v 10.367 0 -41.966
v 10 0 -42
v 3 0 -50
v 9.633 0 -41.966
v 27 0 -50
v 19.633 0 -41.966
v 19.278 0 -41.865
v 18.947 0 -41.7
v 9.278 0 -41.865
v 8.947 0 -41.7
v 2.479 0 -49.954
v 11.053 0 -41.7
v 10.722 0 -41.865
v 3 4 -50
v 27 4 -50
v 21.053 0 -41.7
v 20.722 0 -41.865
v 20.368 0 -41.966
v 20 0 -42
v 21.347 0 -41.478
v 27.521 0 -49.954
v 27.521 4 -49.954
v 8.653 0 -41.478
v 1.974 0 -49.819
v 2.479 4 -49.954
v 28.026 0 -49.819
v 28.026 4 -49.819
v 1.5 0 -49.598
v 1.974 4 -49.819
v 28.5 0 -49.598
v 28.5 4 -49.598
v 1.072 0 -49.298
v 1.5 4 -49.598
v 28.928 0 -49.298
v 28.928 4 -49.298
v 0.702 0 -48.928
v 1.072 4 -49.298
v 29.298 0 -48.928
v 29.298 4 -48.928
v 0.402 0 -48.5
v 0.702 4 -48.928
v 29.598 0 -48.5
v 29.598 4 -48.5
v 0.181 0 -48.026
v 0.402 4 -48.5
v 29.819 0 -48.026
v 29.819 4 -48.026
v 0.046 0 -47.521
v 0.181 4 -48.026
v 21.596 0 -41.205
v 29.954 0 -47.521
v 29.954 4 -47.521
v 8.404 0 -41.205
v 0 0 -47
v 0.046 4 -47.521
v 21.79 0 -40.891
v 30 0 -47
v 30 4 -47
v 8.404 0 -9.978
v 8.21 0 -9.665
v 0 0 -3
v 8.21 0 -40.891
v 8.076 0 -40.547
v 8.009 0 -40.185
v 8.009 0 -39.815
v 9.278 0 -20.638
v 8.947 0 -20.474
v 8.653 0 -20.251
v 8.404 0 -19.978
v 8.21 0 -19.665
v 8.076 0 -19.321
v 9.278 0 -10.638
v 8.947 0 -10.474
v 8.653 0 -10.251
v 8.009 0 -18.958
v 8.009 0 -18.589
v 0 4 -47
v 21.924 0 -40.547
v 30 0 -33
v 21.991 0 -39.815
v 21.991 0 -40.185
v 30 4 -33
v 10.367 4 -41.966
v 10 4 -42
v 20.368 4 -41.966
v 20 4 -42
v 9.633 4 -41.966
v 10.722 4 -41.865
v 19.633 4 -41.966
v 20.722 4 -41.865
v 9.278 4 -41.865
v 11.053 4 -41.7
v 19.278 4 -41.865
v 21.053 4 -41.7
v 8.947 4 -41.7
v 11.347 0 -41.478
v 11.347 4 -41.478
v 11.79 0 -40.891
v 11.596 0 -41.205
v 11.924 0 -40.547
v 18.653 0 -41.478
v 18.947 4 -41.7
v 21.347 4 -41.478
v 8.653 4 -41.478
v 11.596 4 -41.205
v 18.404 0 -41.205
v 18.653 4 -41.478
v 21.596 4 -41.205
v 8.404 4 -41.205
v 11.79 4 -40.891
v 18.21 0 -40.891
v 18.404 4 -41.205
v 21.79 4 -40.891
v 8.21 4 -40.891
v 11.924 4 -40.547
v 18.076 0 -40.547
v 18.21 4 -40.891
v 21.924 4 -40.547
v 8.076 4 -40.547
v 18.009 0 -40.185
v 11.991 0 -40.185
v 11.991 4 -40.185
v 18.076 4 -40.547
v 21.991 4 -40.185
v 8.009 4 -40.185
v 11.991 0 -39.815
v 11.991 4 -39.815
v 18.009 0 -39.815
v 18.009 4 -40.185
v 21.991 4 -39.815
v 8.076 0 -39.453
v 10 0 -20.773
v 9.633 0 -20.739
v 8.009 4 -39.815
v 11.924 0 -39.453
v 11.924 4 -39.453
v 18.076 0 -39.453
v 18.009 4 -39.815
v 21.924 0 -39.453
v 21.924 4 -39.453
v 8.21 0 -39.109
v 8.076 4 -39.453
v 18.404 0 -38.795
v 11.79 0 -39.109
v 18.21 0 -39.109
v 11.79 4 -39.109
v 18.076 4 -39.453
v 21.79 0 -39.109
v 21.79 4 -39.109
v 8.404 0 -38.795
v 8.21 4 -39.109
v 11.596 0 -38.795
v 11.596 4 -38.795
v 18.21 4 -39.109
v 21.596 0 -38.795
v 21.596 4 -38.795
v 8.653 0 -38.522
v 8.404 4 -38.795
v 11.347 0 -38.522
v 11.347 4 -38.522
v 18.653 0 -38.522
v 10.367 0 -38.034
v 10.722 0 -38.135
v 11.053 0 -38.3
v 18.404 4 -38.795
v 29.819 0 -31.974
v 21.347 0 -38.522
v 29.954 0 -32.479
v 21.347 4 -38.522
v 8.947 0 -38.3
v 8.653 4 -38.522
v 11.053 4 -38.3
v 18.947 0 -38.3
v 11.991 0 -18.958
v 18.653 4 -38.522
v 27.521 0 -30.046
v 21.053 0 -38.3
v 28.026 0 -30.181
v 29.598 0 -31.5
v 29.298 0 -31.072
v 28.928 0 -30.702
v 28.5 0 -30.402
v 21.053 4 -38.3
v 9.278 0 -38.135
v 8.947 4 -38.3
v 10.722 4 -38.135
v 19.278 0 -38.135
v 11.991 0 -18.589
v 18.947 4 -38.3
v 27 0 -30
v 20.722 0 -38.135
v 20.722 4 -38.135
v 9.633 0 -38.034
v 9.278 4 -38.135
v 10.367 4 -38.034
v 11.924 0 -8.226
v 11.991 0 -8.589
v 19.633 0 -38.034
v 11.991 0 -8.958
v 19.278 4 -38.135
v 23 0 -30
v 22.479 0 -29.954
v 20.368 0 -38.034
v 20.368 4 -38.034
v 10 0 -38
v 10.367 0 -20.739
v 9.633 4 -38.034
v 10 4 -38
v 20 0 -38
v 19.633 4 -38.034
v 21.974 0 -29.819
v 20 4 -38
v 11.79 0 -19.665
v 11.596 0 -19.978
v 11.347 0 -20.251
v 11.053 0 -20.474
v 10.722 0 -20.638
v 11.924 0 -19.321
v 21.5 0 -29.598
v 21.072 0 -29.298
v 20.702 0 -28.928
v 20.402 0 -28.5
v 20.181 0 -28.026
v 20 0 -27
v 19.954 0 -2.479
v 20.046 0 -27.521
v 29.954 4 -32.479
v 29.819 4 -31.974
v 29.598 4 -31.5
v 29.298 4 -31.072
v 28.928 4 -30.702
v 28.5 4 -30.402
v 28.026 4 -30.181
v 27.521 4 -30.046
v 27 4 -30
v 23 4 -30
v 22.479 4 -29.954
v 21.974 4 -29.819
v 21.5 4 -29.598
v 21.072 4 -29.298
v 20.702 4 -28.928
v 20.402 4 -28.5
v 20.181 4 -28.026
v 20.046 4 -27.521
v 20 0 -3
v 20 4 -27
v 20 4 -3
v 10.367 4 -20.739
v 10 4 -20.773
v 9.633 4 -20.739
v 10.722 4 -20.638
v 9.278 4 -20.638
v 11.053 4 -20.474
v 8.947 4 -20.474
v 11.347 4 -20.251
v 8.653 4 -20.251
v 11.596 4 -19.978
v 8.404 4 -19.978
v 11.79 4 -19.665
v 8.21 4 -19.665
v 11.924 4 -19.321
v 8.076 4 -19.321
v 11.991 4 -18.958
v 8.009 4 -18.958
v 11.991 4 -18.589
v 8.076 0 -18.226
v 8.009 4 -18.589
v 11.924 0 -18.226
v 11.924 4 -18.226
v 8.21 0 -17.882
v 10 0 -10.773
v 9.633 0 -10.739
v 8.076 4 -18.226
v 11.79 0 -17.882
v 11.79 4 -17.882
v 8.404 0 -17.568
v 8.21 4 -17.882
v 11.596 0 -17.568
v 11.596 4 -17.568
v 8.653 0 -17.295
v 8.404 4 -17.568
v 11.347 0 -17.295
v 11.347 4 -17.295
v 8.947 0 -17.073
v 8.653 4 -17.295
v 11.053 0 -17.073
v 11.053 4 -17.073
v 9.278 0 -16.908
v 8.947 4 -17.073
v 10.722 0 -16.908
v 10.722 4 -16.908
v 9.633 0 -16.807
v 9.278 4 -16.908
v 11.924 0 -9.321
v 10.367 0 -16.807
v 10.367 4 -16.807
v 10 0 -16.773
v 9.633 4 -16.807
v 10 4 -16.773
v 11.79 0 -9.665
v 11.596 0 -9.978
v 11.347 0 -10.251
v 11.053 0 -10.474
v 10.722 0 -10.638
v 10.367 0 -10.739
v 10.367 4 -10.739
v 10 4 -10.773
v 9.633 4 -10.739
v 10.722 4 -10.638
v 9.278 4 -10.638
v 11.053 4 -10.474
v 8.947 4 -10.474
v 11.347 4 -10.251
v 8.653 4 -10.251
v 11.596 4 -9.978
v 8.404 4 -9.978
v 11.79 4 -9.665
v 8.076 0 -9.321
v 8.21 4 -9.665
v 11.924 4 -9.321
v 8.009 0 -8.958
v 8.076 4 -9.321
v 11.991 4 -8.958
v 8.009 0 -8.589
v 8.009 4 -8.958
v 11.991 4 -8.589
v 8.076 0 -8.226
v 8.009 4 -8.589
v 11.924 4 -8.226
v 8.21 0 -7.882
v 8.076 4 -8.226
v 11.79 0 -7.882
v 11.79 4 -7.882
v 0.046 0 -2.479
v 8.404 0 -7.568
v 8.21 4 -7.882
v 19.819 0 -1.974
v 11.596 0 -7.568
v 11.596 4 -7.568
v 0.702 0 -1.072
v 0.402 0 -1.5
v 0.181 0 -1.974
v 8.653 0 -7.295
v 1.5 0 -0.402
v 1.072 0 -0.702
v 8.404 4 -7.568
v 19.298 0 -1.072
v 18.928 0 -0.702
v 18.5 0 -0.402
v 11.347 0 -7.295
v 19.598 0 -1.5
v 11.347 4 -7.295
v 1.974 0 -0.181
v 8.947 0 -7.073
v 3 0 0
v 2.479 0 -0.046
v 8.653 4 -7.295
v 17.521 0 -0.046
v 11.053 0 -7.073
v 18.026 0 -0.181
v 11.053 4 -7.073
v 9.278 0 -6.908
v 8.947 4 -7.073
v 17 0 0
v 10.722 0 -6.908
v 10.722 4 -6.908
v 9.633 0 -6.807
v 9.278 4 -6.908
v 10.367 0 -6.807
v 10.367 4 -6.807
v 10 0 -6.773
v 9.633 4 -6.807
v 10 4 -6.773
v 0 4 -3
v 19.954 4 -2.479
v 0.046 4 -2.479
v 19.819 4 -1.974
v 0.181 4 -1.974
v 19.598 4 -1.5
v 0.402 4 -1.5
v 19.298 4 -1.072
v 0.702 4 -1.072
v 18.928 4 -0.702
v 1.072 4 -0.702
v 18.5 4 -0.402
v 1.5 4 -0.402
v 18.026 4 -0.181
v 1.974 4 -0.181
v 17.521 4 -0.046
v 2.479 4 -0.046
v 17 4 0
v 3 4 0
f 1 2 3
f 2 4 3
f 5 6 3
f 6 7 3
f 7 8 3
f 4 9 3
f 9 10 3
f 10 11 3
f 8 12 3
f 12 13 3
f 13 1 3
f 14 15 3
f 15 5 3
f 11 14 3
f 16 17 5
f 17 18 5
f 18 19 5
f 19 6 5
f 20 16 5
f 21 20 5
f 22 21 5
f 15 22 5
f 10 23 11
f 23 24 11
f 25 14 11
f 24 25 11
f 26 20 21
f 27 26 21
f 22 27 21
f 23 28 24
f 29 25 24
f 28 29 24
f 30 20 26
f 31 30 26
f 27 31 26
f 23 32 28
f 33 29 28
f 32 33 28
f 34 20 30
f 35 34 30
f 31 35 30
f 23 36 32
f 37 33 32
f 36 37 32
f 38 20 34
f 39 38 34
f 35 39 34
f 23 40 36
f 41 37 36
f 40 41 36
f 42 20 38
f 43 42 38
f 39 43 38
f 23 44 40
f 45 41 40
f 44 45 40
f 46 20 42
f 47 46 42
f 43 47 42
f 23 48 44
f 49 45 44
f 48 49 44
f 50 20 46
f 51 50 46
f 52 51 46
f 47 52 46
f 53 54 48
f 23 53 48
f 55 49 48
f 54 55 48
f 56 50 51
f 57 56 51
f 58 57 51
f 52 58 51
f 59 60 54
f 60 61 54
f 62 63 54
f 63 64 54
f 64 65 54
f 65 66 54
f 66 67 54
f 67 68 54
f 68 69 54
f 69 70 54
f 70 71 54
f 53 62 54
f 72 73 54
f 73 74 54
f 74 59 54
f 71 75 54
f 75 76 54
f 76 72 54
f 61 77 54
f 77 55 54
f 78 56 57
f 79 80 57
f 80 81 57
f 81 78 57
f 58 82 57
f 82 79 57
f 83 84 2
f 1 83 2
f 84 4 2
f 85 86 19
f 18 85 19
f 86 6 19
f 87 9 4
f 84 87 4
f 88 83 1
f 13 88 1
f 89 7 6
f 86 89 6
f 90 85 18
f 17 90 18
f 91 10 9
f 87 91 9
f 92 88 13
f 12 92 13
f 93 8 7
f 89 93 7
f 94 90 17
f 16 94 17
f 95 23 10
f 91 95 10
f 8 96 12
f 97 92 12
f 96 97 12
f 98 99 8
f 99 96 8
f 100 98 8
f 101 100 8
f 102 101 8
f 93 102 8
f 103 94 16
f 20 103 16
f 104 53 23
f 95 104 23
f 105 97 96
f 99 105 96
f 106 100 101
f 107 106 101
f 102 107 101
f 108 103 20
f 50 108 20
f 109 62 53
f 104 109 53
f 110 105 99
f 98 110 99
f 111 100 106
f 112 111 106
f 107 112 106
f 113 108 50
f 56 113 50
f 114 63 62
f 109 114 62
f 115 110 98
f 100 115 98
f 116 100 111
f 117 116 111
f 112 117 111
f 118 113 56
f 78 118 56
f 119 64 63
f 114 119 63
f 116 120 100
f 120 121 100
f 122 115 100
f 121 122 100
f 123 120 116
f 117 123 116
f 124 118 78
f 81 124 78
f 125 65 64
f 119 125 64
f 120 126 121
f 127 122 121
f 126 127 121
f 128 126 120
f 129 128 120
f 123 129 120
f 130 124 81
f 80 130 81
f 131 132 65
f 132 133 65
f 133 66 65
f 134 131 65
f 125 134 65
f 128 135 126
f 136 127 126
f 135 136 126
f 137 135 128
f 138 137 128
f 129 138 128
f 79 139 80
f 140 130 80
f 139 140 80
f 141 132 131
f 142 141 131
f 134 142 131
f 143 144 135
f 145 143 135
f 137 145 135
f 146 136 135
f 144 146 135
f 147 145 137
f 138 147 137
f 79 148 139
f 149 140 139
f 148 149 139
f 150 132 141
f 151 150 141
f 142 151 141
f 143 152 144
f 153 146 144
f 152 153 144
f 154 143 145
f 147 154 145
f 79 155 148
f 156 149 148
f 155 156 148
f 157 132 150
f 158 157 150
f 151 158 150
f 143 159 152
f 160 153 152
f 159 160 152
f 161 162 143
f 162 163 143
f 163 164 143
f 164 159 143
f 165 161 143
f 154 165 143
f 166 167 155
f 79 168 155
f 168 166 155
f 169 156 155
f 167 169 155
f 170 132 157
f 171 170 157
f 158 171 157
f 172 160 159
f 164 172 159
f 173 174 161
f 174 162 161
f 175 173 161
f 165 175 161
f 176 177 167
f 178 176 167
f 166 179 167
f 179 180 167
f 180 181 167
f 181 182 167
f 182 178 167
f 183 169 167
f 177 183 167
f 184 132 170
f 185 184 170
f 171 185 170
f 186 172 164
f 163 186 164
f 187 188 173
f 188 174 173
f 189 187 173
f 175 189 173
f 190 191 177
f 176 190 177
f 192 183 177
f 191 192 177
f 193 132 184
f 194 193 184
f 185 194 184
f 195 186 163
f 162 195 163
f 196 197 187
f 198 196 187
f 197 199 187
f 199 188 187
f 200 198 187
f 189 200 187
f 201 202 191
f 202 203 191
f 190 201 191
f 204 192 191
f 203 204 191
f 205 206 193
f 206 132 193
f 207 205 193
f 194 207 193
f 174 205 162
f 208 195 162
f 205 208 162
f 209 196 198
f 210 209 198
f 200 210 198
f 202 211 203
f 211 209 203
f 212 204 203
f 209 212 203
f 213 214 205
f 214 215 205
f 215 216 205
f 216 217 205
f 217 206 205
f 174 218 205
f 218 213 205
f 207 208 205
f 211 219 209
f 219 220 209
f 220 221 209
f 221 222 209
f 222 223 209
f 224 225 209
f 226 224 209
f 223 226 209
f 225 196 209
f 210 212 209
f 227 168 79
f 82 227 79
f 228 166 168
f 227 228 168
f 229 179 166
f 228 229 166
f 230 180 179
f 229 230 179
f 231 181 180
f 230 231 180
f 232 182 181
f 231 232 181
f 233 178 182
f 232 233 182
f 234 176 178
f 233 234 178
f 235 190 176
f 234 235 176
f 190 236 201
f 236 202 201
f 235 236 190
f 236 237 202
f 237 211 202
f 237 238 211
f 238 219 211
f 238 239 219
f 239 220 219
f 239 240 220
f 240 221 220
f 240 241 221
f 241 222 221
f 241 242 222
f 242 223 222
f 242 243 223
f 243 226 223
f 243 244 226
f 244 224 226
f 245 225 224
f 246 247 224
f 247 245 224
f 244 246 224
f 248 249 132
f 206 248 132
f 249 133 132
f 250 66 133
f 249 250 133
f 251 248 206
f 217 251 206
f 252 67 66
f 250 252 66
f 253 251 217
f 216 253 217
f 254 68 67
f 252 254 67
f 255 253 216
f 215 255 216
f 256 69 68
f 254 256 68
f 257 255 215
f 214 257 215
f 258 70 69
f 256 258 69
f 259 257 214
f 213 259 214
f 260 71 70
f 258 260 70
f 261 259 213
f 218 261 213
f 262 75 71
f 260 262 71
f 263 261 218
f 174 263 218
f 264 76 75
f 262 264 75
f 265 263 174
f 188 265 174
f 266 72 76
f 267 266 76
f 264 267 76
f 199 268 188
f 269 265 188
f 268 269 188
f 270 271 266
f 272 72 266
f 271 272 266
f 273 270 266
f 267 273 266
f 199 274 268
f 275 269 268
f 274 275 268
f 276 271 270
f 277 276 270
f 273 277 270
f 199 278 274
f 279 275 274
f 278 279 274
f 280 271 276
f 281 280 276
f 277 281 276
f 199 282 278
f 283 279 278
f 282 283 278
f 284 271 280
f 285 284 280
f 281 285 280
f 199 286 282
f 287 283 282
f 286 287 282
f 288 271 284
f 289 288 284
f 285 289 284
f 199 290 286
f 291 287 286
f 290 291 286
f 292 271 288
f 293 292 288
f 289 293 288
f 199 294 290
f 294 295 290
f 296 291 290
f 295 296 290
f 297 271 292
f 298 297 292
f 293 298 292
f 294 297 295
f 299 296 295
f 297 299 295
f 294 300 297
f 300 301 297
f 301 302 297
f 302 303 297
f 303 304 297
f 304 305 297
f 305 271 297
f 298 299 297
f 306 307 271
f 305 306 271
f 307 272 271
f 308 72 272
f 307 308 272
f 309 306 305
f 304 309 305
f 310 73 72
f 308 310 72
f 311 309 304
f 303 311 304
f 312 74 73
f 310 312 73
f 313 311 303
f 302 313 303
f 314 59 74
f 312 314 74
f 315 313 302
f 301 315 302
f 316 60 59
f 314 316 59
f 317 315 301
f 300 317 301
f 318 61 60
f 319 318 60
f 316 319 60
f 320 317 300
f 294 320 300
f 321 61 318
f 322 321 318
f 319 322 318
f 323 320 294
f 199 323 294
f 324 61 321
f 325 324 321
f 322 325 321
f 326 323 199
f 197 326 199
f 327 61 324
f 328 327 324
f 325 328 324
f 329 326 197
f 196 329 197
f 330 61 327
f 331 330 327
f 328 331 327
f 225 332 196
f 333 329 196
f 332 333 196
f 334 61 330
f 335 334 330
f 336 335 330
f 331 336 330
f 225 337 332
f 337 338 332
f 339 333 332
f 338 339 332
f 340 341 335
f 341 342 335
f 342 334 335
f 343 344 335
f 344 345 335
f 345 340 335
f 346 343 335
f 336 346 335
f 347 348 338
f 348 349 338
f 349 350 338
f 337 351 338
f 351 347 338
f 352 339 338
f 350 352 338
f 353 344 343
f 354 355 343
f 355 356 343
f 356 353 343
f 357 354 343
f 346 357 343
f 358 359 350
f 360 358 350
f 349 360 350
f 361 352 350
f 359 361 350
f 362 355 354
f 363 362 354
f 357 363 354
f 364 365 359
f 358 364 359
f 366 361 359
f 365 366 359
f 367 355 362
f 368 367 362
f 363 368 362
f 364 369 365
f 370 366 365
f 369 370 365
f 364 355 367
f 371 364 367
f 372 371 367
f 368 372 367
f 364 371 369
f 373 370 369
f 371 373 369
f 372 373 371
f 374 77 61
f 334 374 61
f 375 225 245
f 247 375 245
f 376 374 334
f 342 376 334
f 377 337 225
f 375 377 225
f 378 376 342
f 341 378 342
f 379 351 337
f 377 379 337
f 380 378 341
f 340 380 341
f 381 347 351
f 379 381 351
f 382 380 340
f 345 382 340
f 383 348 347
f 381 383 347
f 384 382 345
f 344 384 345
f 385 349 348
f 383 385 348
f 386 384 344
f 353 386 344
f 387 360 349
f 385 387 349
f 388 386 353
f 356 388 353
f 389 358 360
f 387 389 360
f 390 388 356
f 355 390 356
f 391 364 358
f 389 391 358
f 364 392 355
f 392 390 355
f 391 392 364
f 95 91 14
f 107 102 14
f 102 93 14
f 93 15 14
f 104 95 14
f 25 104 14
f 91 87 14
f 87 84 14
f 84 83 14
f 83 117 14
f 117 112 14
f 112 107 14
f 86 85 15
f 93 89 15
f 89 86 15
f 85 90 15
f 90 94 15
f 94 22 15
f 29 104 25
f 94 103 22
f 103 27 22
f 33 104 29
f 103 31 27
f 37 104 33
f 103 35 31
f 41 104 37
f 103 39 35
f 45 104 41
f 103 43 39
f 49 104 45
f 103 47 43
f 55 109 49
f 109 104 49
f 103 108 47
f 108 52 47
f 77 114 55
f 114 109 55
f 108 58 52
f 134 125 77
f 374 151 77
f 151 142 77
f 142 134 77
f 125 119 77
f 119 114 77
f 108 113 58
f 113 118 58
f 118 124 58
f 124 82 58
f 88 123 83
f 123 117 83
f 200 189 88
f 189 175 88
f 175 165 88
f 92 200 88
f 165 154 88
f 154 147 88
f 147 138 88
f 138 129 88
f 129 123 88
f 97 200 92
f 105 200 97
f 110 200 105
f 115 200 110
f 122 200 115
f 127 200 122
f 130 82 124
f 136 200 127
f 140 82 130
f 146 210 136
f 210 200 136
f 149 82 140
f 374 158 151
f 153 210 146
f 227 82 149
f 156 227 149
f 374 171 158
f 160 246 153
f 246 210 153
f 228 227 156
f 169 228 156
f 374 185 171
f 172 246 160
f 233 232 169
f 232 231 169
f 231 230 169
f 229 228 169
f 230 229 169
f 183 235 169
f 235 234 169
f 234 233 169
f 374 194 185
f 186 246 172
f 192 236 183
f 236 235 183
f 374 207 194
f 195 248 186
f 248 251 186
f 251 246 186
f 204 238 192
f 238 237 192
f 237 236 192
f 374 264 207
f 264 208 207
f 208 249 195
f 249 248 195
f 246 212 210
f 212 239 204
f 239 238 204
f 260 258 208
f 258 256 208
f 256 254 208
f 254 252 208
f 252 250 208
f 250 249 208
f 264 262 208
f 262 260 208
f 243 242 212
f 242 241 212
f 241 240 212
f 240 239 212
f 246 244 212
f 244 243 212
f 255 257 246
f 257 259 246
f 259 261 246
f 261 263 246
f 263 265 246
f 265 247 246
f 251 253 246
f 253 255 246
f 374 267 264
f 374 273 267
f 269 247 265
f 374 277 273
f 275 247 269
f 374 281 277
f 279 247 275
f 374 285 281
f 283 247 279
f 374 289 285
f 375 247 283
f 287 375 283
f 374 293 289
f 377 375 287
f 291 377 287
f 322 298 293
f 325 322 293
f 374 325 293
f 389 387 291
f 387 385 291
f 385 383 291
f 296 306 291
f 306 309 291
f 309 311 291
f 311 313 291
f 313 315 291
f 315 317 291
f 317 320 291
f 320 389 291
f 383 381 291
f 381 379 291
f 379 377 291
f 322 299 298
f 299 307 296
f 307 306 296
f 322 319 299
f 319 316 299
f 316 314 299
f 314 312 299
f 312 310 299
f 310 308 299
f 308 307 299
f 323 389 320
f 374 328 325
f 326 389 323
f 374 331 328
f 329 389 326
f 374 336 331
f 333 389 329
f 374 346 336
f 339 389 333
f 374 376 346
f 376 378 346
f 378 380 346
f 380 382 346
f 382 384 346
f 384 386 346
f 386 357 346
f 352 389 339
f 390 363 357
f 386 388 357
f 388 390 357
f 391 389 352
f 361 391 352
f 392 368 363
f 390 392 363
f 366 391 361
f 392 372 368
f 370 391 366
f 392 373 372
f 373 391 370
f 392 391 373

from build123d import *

# Parameters (mm, degrees)
SKETCH1_R           = 2
BOSS_EXTRUDE1_DEPTH = 4
FILLET1_R           = 3


with BuildPart() as part:
    # Sketch1 → Boss-Extrude1 (new body)
    with BuildSketch(Plane(origin=(0, 0, 0), x_dir=(1, 0, 0), z_dir=(0, 1, 0))):
        Polygon((0, 0), (20, 0), (20, 30), (30, 30), (30, 50), (0, 50), align=None)
        with Locations((10, 18.773227759)):
            Circle(SKETCH1_R, mode=Mode.SUBTRACT)
        with Locations((10, 8.773227759)):
            Circle(SKETCH1_R, mode=Mode.SUBTRACT)
        with Locations((20, 40)):
            Circle(SKETCH1_R, mode=Mode.SUBTRACT)
        with Locations((10, 40)):
            Circle(SKETCH1_R, mode=Mode.SUBTRACT)
    extrude(amount=BOSS_EXTRUDE1_DEPTH)

    # Fillet1
    fillet1_edges = [part.edges().sort_by_distance(p)[0] for p in [
        (0, 2, -50),
        (30, 2, -50),
        (30, 2, -30),
        (20, 2, -30),
        (20, 2, 0),
        (0, 2, 0),
    ]]
    fillet(fillet1_edges, radius=FILLET1_R)


solid = part.part
